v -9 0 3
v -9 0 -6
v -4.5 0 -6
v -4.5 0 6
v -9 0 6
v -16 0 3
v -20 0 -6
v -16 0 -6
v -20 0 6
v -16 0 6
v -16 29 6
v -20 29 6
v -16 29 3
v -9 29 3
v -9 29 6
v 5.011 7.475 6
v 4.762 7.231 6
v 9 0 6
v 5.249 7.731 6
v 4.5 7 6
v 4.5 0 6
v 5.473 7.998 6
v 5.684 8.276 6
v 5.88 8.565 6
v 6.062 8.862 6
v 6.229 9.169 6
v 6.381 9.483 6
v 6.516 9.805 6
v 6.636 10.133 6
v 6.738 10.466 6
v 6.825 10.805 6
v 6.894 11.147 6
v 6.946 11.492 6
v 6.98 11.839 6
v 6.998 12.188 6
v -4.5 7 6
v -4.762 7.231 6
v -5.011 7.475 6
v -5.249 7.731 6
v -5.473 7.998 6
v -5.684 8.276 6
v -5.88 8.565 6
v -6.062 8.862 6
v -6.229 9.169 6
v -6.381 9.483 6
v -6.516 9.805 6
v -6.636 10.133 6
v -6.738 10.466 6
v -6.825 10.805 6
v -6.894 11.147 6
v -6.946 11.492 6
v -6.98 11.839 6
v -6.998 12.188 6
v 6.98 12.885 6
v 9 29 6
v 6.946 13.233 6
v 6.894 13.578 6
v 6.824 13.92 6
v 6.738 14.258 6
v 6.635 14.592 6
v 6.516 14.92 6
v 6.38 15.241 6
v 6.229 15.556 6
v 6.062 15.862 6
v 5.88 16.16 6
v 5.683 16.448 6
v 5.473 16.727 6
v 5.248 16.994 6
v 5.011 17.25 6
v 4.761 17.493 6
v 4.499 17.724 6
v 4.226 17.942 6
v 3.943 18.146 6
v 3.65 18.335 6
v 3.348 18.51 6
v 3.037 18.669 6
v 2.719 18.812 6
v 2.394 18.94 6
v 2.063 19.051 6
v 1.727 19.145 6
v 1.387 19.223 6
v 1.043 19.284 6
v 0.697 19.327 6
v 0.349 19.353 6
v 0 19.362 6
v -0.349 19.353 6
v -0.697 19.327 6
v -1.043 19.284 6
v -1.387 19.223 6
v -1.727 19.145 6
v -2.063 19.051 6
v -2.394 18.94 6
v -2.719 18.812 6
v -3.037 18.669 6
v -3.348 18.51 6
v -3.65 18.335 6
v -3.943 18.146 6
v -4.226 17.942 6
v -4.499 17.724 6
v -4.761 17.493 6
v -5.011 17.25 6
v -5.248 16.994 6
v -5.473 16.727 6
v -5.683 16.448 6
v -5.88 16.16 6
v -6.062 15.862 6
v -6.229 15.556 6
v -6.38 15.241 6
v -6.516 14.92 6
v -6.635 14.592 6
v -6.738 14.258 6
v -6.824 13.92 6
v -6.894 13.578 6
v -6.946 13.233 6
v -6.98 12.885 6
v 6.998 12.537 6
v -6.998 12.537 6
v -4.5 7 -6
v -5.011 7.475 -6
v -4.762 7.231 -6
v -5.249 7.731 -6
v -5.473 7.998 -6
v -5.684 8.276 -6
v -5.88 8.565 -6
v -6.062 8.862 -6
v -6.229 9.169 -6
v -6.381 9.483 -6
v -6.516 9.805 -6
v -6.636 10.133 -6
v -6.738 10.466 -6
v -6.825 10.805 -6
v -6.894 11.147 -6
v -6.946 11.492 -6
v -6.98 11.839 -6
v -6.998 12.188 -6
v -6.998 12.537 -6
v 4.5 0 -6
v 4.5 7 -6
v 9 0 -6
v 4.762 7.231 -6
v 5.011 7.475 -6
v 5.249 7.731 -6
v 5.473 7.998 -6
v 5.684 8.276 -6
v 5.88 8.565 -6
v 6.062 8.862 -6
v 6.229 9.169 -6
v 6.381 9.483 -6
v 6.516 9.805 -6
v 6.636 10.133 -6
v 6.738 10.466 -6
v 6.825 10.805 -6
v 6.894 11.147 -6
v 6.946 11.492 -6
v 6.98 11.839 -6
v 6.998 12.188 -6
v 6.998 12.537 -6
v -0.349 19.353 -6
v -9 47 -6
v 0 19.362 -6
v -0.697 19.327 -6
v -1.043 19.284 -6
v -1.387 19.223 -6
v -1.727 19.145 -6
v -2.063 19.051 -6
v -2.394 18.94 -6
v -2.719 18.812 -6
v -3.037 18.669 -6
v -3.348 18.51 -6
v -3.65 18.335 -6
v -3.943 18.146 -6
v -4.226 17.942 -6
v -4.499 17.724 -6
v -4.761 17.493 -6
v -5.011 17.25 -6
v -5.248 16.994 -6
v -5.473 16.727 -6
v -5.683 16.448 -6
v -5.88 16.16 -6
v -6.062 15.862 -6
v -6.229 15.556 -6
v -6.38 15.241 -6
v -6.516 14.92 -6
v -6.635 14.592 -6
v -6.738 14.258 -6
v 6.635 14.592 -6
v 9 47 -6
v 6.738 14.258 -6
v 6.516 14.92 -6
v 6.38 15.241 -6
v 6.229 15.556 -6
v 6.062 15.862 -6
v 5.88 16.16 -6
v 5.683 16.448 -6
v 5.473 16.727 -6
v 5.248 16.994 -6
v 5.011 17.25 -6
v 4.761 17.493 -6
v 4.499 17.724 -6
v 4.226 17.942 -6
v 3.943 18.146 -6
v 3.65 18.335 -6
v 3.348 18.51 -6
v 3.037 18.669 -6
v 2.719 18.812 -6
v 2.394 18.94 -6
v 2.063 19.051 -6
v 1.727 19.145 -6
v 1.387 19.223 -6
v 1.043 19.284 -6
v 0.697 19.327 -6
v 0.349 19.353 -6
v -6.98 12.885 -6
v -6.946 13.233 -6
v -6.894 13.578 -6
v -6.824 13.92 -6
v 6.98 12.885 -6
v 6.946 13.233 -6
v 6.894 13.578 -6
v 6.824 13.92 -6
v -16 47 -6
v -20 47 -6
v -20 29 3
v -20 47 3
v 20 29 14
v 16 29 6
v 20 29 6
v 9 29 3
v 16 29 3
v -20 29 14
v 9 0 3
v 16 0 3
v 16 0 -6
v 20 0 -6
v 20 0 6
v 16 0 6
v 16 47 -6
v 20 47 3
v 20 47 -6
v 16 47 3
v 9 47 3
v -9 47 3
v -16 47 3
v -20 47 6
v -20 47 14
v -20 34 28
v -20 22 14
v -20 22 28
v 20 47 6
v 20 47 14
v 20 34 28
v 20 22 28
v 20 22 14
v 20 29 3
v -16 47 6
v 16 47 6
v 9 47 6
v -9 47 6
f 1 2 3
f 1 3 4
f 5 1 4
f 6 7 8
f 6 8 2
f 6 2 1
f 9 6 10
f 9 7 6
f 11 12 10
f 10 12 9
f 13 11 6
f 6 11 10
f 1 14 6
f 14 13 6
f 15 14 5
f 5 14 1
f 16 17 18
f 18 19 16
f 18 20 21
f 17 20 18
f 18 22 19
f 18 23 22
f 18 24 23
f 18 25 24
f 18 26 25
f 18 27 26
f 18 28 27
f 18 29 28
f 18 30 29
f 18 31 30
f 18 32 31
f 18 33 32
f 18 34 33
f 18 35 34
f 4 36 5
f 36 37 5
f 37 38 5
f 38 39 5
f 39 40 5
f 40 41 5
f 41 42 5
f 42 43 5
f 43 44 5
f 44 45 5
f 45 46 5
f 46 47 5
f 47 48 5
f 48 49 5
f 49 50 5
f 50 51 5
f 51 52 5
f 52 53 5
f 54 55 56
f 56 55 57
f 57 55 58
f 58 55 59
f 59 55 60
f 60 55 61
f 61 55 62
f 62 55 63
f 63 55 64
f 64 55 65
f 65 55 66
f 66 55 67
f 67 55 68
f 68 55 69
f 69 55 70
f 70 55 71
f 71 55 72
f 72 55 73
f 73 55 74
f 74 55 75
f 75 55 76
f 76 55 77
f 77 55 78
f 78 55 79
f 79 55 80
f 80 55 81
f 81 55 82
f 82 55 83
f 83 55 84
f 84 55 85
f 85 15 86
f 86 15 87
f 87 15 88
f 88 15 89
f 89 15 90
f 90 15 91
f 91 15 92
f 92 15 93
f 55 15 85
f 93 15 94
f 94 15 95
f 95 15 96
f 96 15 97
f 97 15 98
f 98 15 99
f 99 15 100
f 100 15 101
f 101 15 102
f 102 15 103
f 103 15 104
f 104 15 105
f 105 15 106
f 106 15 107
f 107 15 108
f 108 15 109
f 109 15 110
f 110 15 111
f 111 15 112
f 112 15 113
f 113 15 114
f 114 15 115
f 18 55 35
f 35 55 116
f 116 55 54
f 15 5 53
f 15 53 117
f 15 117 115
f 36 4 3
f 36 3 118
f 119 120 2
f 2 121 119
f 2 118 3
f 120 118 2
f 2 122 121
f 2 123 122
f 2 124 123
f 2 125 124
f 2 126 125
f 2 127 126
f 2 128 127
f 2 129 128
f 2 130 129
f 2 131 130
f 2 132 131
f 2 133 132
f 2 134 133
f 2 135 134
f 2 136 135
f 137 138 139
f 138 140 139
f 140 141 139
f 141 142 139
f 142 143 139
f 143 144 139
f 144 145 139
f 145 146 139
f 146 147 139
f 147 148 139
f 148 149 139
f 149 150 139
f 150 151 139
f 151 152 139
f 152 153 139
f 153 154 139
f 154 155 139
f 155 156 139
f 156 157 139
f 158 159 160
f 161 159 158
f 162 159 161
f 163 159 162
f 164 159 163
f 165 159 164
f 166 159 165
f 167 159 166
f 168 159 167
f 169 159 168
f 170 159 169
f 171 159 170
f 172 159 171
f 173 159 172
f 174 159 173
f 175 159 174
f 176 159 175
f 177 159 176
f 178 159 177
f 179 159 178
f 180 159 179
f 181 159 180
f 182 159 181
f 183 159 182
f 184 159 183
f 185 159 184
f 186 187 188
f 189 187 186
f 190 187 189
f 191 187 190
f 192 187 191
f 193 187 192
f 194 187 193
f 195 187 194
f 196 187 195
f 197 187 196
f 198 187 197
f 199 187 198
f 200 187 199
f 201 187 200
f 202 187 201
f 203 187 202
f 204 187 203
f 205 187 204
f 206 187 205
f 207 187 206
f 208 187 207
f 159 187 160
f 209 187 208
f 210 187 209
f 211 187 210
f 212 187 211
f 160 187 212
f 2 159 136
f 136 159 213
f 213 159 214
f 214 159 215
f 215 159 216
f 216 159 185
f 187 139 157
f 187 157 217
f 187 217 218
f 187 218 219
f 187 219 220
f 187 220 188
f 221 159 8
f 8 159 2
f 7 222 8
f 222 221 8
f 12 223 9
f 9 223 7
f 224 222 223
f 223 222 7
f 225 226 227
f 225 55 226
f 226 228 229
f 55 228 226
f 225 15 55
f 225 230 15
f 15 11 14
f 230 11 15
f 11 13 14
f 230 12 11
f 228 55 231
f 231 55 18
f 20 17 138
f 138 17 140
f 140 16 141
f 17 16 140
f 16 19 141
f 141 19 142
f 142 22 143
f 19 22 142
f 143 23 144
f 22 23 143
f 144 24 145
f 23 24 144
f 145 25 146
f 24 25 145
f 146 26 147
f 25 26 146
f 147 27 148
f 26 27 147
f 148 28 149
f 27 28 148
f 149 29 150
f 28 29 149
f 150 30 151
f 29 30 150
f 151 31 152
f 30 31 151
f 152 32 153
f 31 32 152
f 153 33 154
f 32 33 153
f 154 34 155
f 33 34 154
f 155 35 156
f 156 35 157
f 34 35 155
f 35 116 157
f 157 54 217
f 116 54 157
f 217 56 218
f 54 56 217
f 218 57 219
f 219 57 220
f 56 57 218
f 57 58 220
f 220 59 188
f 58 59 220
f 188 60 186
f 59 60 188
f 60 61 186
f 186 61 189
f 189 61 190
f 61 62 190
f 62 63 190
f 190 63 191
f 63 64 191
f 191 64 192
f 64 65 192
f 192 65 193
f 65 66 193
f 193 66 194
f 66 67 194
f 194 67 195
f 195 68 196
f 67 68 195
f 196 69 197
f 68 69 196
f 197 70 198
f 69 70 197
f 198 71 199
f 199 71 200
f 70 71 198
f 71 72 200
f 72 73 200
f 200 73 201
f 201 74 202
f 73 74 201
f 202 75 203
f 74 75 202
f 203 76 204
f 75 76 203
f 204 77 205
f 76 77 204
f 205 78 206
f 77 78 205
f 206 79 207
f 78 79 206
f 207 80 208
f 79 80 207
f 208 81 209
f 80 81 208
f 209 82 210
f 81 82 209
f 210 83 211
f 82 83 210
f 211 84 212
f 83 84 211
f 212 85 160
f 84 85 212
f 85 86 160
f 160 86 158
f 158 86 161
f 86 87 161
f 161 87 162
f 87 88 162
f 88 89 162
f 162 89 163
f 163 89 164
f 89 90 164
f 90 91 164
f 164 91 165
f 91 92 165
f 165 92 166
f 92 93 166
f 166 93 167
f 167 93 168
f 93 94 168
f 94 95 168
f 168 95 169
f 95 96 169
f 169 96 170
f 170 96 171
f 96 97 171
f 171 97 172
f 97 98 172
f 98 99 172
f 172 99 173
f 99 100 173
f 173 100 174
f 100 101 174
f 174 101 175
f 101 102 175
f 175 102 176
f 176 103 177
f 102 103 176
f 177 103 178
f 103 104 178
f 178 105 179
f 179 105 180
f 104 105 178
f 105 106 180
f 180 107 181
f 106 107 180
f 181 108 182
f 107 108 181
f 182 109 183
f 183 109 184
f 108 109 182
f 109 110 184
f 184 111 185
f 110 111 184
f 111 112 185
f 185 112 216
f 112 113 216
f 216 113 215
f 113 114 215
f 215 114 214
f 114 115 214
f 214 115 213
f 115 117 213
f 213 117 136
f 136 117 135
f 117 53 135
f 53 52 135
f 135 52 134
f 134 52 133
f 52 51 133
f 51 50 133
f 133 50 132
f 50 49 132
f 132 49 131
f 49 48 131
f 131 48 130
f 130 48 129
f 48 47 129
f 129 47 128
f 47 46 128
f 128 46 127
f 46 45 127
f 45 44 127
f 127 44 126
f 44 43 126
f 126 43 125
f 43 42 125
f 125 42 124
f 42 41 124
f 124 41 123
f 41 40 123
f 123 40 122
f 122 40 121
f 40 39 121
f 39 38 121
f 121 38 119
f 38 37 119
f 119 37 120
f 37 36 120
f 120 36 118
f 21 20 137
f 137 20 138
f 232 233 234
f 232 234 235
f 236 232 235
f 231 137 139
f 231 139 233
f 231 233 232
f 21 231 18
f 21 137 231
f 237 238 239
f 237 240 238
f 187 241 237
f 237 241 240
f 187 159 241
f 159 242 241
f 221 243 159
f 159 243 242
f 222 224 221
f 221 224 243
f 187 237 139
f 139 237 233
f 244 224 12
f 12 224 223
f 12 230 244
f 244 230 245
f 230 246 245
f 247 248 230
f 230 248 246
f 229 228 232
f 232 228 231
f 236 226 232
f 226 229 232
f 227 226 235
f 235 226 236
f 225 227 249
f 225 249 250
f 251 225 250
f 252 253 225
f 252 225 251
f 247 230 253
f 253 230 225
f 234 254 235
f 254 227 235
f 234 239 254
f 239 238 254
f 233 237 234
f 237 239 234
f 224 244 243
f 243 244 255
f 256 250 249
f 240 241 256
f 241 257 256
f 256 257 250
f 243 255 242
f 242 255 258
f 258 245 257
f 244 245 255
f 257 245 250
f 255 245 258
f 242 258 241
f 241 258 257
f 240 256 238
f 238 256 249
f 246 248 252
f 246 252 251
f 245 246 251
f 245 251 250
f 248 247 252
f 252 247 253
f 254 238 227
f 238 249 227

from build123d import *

# Parameters (mm, degrees)
PAD_DEPTH         = 20
POCKET_DEPTH      = 6.001
POCKET_DEPTH_BACK = -28.001


with BuildPart() as part:
    # AdditivePipe: sweep along a path in Sketch
    with BuildLine(Plane.XY) as additivepipe_path:
        Line((0, 0), (0, 47))
    # Sketch001 → AdditivePipe (sweep)
    with BuildSketch(Plane.XZ):
        Polygon((-20, 6), (-20, -6), (-16, -6), (-9, -6), (9, -6), (16, -6), (20, -6), (20, 6), (16, 6), (16, 3), (9, 3), (9, 6), (-9, 6), (-9, 3), (-16, 3), (-16, 6), align=None)
    sweep(path=additivepipe_path.line)

    # Sketch002 → Pad (new body, symmetric)
    with BuildSketch(Plane.YZ):
        Polygon((47, 3), (47, 14), (34, 28), (22, 28), (22, 14), (29, 14), (29, 3), align=None)
    extrude(amount=PAD_DEPTH, both=True)

    # Sketch003 → Pocket (cut, two sides)
    with BuildSketch(Plane.XY) as pocket_sk:
        with BuildLine():
            Line((-4.5, 0), (4.5, 0))
            Line((4.5, 0), (4.5, 7))
            ThreePointArc((4.5, 7), (0, 19.361903), (-4.5, 7))
            Line((-4.5, 0), (-4.5, 7))
        make_face()
    extrude(amount=-POCKET_DEPTH, mode=Mode.SUBTRACT)
    extrude(pocket_sk.sketch, amount=-POCKET_DEPTH_BACK, mode=Mode.SUBTRACT)


solid = part.part
